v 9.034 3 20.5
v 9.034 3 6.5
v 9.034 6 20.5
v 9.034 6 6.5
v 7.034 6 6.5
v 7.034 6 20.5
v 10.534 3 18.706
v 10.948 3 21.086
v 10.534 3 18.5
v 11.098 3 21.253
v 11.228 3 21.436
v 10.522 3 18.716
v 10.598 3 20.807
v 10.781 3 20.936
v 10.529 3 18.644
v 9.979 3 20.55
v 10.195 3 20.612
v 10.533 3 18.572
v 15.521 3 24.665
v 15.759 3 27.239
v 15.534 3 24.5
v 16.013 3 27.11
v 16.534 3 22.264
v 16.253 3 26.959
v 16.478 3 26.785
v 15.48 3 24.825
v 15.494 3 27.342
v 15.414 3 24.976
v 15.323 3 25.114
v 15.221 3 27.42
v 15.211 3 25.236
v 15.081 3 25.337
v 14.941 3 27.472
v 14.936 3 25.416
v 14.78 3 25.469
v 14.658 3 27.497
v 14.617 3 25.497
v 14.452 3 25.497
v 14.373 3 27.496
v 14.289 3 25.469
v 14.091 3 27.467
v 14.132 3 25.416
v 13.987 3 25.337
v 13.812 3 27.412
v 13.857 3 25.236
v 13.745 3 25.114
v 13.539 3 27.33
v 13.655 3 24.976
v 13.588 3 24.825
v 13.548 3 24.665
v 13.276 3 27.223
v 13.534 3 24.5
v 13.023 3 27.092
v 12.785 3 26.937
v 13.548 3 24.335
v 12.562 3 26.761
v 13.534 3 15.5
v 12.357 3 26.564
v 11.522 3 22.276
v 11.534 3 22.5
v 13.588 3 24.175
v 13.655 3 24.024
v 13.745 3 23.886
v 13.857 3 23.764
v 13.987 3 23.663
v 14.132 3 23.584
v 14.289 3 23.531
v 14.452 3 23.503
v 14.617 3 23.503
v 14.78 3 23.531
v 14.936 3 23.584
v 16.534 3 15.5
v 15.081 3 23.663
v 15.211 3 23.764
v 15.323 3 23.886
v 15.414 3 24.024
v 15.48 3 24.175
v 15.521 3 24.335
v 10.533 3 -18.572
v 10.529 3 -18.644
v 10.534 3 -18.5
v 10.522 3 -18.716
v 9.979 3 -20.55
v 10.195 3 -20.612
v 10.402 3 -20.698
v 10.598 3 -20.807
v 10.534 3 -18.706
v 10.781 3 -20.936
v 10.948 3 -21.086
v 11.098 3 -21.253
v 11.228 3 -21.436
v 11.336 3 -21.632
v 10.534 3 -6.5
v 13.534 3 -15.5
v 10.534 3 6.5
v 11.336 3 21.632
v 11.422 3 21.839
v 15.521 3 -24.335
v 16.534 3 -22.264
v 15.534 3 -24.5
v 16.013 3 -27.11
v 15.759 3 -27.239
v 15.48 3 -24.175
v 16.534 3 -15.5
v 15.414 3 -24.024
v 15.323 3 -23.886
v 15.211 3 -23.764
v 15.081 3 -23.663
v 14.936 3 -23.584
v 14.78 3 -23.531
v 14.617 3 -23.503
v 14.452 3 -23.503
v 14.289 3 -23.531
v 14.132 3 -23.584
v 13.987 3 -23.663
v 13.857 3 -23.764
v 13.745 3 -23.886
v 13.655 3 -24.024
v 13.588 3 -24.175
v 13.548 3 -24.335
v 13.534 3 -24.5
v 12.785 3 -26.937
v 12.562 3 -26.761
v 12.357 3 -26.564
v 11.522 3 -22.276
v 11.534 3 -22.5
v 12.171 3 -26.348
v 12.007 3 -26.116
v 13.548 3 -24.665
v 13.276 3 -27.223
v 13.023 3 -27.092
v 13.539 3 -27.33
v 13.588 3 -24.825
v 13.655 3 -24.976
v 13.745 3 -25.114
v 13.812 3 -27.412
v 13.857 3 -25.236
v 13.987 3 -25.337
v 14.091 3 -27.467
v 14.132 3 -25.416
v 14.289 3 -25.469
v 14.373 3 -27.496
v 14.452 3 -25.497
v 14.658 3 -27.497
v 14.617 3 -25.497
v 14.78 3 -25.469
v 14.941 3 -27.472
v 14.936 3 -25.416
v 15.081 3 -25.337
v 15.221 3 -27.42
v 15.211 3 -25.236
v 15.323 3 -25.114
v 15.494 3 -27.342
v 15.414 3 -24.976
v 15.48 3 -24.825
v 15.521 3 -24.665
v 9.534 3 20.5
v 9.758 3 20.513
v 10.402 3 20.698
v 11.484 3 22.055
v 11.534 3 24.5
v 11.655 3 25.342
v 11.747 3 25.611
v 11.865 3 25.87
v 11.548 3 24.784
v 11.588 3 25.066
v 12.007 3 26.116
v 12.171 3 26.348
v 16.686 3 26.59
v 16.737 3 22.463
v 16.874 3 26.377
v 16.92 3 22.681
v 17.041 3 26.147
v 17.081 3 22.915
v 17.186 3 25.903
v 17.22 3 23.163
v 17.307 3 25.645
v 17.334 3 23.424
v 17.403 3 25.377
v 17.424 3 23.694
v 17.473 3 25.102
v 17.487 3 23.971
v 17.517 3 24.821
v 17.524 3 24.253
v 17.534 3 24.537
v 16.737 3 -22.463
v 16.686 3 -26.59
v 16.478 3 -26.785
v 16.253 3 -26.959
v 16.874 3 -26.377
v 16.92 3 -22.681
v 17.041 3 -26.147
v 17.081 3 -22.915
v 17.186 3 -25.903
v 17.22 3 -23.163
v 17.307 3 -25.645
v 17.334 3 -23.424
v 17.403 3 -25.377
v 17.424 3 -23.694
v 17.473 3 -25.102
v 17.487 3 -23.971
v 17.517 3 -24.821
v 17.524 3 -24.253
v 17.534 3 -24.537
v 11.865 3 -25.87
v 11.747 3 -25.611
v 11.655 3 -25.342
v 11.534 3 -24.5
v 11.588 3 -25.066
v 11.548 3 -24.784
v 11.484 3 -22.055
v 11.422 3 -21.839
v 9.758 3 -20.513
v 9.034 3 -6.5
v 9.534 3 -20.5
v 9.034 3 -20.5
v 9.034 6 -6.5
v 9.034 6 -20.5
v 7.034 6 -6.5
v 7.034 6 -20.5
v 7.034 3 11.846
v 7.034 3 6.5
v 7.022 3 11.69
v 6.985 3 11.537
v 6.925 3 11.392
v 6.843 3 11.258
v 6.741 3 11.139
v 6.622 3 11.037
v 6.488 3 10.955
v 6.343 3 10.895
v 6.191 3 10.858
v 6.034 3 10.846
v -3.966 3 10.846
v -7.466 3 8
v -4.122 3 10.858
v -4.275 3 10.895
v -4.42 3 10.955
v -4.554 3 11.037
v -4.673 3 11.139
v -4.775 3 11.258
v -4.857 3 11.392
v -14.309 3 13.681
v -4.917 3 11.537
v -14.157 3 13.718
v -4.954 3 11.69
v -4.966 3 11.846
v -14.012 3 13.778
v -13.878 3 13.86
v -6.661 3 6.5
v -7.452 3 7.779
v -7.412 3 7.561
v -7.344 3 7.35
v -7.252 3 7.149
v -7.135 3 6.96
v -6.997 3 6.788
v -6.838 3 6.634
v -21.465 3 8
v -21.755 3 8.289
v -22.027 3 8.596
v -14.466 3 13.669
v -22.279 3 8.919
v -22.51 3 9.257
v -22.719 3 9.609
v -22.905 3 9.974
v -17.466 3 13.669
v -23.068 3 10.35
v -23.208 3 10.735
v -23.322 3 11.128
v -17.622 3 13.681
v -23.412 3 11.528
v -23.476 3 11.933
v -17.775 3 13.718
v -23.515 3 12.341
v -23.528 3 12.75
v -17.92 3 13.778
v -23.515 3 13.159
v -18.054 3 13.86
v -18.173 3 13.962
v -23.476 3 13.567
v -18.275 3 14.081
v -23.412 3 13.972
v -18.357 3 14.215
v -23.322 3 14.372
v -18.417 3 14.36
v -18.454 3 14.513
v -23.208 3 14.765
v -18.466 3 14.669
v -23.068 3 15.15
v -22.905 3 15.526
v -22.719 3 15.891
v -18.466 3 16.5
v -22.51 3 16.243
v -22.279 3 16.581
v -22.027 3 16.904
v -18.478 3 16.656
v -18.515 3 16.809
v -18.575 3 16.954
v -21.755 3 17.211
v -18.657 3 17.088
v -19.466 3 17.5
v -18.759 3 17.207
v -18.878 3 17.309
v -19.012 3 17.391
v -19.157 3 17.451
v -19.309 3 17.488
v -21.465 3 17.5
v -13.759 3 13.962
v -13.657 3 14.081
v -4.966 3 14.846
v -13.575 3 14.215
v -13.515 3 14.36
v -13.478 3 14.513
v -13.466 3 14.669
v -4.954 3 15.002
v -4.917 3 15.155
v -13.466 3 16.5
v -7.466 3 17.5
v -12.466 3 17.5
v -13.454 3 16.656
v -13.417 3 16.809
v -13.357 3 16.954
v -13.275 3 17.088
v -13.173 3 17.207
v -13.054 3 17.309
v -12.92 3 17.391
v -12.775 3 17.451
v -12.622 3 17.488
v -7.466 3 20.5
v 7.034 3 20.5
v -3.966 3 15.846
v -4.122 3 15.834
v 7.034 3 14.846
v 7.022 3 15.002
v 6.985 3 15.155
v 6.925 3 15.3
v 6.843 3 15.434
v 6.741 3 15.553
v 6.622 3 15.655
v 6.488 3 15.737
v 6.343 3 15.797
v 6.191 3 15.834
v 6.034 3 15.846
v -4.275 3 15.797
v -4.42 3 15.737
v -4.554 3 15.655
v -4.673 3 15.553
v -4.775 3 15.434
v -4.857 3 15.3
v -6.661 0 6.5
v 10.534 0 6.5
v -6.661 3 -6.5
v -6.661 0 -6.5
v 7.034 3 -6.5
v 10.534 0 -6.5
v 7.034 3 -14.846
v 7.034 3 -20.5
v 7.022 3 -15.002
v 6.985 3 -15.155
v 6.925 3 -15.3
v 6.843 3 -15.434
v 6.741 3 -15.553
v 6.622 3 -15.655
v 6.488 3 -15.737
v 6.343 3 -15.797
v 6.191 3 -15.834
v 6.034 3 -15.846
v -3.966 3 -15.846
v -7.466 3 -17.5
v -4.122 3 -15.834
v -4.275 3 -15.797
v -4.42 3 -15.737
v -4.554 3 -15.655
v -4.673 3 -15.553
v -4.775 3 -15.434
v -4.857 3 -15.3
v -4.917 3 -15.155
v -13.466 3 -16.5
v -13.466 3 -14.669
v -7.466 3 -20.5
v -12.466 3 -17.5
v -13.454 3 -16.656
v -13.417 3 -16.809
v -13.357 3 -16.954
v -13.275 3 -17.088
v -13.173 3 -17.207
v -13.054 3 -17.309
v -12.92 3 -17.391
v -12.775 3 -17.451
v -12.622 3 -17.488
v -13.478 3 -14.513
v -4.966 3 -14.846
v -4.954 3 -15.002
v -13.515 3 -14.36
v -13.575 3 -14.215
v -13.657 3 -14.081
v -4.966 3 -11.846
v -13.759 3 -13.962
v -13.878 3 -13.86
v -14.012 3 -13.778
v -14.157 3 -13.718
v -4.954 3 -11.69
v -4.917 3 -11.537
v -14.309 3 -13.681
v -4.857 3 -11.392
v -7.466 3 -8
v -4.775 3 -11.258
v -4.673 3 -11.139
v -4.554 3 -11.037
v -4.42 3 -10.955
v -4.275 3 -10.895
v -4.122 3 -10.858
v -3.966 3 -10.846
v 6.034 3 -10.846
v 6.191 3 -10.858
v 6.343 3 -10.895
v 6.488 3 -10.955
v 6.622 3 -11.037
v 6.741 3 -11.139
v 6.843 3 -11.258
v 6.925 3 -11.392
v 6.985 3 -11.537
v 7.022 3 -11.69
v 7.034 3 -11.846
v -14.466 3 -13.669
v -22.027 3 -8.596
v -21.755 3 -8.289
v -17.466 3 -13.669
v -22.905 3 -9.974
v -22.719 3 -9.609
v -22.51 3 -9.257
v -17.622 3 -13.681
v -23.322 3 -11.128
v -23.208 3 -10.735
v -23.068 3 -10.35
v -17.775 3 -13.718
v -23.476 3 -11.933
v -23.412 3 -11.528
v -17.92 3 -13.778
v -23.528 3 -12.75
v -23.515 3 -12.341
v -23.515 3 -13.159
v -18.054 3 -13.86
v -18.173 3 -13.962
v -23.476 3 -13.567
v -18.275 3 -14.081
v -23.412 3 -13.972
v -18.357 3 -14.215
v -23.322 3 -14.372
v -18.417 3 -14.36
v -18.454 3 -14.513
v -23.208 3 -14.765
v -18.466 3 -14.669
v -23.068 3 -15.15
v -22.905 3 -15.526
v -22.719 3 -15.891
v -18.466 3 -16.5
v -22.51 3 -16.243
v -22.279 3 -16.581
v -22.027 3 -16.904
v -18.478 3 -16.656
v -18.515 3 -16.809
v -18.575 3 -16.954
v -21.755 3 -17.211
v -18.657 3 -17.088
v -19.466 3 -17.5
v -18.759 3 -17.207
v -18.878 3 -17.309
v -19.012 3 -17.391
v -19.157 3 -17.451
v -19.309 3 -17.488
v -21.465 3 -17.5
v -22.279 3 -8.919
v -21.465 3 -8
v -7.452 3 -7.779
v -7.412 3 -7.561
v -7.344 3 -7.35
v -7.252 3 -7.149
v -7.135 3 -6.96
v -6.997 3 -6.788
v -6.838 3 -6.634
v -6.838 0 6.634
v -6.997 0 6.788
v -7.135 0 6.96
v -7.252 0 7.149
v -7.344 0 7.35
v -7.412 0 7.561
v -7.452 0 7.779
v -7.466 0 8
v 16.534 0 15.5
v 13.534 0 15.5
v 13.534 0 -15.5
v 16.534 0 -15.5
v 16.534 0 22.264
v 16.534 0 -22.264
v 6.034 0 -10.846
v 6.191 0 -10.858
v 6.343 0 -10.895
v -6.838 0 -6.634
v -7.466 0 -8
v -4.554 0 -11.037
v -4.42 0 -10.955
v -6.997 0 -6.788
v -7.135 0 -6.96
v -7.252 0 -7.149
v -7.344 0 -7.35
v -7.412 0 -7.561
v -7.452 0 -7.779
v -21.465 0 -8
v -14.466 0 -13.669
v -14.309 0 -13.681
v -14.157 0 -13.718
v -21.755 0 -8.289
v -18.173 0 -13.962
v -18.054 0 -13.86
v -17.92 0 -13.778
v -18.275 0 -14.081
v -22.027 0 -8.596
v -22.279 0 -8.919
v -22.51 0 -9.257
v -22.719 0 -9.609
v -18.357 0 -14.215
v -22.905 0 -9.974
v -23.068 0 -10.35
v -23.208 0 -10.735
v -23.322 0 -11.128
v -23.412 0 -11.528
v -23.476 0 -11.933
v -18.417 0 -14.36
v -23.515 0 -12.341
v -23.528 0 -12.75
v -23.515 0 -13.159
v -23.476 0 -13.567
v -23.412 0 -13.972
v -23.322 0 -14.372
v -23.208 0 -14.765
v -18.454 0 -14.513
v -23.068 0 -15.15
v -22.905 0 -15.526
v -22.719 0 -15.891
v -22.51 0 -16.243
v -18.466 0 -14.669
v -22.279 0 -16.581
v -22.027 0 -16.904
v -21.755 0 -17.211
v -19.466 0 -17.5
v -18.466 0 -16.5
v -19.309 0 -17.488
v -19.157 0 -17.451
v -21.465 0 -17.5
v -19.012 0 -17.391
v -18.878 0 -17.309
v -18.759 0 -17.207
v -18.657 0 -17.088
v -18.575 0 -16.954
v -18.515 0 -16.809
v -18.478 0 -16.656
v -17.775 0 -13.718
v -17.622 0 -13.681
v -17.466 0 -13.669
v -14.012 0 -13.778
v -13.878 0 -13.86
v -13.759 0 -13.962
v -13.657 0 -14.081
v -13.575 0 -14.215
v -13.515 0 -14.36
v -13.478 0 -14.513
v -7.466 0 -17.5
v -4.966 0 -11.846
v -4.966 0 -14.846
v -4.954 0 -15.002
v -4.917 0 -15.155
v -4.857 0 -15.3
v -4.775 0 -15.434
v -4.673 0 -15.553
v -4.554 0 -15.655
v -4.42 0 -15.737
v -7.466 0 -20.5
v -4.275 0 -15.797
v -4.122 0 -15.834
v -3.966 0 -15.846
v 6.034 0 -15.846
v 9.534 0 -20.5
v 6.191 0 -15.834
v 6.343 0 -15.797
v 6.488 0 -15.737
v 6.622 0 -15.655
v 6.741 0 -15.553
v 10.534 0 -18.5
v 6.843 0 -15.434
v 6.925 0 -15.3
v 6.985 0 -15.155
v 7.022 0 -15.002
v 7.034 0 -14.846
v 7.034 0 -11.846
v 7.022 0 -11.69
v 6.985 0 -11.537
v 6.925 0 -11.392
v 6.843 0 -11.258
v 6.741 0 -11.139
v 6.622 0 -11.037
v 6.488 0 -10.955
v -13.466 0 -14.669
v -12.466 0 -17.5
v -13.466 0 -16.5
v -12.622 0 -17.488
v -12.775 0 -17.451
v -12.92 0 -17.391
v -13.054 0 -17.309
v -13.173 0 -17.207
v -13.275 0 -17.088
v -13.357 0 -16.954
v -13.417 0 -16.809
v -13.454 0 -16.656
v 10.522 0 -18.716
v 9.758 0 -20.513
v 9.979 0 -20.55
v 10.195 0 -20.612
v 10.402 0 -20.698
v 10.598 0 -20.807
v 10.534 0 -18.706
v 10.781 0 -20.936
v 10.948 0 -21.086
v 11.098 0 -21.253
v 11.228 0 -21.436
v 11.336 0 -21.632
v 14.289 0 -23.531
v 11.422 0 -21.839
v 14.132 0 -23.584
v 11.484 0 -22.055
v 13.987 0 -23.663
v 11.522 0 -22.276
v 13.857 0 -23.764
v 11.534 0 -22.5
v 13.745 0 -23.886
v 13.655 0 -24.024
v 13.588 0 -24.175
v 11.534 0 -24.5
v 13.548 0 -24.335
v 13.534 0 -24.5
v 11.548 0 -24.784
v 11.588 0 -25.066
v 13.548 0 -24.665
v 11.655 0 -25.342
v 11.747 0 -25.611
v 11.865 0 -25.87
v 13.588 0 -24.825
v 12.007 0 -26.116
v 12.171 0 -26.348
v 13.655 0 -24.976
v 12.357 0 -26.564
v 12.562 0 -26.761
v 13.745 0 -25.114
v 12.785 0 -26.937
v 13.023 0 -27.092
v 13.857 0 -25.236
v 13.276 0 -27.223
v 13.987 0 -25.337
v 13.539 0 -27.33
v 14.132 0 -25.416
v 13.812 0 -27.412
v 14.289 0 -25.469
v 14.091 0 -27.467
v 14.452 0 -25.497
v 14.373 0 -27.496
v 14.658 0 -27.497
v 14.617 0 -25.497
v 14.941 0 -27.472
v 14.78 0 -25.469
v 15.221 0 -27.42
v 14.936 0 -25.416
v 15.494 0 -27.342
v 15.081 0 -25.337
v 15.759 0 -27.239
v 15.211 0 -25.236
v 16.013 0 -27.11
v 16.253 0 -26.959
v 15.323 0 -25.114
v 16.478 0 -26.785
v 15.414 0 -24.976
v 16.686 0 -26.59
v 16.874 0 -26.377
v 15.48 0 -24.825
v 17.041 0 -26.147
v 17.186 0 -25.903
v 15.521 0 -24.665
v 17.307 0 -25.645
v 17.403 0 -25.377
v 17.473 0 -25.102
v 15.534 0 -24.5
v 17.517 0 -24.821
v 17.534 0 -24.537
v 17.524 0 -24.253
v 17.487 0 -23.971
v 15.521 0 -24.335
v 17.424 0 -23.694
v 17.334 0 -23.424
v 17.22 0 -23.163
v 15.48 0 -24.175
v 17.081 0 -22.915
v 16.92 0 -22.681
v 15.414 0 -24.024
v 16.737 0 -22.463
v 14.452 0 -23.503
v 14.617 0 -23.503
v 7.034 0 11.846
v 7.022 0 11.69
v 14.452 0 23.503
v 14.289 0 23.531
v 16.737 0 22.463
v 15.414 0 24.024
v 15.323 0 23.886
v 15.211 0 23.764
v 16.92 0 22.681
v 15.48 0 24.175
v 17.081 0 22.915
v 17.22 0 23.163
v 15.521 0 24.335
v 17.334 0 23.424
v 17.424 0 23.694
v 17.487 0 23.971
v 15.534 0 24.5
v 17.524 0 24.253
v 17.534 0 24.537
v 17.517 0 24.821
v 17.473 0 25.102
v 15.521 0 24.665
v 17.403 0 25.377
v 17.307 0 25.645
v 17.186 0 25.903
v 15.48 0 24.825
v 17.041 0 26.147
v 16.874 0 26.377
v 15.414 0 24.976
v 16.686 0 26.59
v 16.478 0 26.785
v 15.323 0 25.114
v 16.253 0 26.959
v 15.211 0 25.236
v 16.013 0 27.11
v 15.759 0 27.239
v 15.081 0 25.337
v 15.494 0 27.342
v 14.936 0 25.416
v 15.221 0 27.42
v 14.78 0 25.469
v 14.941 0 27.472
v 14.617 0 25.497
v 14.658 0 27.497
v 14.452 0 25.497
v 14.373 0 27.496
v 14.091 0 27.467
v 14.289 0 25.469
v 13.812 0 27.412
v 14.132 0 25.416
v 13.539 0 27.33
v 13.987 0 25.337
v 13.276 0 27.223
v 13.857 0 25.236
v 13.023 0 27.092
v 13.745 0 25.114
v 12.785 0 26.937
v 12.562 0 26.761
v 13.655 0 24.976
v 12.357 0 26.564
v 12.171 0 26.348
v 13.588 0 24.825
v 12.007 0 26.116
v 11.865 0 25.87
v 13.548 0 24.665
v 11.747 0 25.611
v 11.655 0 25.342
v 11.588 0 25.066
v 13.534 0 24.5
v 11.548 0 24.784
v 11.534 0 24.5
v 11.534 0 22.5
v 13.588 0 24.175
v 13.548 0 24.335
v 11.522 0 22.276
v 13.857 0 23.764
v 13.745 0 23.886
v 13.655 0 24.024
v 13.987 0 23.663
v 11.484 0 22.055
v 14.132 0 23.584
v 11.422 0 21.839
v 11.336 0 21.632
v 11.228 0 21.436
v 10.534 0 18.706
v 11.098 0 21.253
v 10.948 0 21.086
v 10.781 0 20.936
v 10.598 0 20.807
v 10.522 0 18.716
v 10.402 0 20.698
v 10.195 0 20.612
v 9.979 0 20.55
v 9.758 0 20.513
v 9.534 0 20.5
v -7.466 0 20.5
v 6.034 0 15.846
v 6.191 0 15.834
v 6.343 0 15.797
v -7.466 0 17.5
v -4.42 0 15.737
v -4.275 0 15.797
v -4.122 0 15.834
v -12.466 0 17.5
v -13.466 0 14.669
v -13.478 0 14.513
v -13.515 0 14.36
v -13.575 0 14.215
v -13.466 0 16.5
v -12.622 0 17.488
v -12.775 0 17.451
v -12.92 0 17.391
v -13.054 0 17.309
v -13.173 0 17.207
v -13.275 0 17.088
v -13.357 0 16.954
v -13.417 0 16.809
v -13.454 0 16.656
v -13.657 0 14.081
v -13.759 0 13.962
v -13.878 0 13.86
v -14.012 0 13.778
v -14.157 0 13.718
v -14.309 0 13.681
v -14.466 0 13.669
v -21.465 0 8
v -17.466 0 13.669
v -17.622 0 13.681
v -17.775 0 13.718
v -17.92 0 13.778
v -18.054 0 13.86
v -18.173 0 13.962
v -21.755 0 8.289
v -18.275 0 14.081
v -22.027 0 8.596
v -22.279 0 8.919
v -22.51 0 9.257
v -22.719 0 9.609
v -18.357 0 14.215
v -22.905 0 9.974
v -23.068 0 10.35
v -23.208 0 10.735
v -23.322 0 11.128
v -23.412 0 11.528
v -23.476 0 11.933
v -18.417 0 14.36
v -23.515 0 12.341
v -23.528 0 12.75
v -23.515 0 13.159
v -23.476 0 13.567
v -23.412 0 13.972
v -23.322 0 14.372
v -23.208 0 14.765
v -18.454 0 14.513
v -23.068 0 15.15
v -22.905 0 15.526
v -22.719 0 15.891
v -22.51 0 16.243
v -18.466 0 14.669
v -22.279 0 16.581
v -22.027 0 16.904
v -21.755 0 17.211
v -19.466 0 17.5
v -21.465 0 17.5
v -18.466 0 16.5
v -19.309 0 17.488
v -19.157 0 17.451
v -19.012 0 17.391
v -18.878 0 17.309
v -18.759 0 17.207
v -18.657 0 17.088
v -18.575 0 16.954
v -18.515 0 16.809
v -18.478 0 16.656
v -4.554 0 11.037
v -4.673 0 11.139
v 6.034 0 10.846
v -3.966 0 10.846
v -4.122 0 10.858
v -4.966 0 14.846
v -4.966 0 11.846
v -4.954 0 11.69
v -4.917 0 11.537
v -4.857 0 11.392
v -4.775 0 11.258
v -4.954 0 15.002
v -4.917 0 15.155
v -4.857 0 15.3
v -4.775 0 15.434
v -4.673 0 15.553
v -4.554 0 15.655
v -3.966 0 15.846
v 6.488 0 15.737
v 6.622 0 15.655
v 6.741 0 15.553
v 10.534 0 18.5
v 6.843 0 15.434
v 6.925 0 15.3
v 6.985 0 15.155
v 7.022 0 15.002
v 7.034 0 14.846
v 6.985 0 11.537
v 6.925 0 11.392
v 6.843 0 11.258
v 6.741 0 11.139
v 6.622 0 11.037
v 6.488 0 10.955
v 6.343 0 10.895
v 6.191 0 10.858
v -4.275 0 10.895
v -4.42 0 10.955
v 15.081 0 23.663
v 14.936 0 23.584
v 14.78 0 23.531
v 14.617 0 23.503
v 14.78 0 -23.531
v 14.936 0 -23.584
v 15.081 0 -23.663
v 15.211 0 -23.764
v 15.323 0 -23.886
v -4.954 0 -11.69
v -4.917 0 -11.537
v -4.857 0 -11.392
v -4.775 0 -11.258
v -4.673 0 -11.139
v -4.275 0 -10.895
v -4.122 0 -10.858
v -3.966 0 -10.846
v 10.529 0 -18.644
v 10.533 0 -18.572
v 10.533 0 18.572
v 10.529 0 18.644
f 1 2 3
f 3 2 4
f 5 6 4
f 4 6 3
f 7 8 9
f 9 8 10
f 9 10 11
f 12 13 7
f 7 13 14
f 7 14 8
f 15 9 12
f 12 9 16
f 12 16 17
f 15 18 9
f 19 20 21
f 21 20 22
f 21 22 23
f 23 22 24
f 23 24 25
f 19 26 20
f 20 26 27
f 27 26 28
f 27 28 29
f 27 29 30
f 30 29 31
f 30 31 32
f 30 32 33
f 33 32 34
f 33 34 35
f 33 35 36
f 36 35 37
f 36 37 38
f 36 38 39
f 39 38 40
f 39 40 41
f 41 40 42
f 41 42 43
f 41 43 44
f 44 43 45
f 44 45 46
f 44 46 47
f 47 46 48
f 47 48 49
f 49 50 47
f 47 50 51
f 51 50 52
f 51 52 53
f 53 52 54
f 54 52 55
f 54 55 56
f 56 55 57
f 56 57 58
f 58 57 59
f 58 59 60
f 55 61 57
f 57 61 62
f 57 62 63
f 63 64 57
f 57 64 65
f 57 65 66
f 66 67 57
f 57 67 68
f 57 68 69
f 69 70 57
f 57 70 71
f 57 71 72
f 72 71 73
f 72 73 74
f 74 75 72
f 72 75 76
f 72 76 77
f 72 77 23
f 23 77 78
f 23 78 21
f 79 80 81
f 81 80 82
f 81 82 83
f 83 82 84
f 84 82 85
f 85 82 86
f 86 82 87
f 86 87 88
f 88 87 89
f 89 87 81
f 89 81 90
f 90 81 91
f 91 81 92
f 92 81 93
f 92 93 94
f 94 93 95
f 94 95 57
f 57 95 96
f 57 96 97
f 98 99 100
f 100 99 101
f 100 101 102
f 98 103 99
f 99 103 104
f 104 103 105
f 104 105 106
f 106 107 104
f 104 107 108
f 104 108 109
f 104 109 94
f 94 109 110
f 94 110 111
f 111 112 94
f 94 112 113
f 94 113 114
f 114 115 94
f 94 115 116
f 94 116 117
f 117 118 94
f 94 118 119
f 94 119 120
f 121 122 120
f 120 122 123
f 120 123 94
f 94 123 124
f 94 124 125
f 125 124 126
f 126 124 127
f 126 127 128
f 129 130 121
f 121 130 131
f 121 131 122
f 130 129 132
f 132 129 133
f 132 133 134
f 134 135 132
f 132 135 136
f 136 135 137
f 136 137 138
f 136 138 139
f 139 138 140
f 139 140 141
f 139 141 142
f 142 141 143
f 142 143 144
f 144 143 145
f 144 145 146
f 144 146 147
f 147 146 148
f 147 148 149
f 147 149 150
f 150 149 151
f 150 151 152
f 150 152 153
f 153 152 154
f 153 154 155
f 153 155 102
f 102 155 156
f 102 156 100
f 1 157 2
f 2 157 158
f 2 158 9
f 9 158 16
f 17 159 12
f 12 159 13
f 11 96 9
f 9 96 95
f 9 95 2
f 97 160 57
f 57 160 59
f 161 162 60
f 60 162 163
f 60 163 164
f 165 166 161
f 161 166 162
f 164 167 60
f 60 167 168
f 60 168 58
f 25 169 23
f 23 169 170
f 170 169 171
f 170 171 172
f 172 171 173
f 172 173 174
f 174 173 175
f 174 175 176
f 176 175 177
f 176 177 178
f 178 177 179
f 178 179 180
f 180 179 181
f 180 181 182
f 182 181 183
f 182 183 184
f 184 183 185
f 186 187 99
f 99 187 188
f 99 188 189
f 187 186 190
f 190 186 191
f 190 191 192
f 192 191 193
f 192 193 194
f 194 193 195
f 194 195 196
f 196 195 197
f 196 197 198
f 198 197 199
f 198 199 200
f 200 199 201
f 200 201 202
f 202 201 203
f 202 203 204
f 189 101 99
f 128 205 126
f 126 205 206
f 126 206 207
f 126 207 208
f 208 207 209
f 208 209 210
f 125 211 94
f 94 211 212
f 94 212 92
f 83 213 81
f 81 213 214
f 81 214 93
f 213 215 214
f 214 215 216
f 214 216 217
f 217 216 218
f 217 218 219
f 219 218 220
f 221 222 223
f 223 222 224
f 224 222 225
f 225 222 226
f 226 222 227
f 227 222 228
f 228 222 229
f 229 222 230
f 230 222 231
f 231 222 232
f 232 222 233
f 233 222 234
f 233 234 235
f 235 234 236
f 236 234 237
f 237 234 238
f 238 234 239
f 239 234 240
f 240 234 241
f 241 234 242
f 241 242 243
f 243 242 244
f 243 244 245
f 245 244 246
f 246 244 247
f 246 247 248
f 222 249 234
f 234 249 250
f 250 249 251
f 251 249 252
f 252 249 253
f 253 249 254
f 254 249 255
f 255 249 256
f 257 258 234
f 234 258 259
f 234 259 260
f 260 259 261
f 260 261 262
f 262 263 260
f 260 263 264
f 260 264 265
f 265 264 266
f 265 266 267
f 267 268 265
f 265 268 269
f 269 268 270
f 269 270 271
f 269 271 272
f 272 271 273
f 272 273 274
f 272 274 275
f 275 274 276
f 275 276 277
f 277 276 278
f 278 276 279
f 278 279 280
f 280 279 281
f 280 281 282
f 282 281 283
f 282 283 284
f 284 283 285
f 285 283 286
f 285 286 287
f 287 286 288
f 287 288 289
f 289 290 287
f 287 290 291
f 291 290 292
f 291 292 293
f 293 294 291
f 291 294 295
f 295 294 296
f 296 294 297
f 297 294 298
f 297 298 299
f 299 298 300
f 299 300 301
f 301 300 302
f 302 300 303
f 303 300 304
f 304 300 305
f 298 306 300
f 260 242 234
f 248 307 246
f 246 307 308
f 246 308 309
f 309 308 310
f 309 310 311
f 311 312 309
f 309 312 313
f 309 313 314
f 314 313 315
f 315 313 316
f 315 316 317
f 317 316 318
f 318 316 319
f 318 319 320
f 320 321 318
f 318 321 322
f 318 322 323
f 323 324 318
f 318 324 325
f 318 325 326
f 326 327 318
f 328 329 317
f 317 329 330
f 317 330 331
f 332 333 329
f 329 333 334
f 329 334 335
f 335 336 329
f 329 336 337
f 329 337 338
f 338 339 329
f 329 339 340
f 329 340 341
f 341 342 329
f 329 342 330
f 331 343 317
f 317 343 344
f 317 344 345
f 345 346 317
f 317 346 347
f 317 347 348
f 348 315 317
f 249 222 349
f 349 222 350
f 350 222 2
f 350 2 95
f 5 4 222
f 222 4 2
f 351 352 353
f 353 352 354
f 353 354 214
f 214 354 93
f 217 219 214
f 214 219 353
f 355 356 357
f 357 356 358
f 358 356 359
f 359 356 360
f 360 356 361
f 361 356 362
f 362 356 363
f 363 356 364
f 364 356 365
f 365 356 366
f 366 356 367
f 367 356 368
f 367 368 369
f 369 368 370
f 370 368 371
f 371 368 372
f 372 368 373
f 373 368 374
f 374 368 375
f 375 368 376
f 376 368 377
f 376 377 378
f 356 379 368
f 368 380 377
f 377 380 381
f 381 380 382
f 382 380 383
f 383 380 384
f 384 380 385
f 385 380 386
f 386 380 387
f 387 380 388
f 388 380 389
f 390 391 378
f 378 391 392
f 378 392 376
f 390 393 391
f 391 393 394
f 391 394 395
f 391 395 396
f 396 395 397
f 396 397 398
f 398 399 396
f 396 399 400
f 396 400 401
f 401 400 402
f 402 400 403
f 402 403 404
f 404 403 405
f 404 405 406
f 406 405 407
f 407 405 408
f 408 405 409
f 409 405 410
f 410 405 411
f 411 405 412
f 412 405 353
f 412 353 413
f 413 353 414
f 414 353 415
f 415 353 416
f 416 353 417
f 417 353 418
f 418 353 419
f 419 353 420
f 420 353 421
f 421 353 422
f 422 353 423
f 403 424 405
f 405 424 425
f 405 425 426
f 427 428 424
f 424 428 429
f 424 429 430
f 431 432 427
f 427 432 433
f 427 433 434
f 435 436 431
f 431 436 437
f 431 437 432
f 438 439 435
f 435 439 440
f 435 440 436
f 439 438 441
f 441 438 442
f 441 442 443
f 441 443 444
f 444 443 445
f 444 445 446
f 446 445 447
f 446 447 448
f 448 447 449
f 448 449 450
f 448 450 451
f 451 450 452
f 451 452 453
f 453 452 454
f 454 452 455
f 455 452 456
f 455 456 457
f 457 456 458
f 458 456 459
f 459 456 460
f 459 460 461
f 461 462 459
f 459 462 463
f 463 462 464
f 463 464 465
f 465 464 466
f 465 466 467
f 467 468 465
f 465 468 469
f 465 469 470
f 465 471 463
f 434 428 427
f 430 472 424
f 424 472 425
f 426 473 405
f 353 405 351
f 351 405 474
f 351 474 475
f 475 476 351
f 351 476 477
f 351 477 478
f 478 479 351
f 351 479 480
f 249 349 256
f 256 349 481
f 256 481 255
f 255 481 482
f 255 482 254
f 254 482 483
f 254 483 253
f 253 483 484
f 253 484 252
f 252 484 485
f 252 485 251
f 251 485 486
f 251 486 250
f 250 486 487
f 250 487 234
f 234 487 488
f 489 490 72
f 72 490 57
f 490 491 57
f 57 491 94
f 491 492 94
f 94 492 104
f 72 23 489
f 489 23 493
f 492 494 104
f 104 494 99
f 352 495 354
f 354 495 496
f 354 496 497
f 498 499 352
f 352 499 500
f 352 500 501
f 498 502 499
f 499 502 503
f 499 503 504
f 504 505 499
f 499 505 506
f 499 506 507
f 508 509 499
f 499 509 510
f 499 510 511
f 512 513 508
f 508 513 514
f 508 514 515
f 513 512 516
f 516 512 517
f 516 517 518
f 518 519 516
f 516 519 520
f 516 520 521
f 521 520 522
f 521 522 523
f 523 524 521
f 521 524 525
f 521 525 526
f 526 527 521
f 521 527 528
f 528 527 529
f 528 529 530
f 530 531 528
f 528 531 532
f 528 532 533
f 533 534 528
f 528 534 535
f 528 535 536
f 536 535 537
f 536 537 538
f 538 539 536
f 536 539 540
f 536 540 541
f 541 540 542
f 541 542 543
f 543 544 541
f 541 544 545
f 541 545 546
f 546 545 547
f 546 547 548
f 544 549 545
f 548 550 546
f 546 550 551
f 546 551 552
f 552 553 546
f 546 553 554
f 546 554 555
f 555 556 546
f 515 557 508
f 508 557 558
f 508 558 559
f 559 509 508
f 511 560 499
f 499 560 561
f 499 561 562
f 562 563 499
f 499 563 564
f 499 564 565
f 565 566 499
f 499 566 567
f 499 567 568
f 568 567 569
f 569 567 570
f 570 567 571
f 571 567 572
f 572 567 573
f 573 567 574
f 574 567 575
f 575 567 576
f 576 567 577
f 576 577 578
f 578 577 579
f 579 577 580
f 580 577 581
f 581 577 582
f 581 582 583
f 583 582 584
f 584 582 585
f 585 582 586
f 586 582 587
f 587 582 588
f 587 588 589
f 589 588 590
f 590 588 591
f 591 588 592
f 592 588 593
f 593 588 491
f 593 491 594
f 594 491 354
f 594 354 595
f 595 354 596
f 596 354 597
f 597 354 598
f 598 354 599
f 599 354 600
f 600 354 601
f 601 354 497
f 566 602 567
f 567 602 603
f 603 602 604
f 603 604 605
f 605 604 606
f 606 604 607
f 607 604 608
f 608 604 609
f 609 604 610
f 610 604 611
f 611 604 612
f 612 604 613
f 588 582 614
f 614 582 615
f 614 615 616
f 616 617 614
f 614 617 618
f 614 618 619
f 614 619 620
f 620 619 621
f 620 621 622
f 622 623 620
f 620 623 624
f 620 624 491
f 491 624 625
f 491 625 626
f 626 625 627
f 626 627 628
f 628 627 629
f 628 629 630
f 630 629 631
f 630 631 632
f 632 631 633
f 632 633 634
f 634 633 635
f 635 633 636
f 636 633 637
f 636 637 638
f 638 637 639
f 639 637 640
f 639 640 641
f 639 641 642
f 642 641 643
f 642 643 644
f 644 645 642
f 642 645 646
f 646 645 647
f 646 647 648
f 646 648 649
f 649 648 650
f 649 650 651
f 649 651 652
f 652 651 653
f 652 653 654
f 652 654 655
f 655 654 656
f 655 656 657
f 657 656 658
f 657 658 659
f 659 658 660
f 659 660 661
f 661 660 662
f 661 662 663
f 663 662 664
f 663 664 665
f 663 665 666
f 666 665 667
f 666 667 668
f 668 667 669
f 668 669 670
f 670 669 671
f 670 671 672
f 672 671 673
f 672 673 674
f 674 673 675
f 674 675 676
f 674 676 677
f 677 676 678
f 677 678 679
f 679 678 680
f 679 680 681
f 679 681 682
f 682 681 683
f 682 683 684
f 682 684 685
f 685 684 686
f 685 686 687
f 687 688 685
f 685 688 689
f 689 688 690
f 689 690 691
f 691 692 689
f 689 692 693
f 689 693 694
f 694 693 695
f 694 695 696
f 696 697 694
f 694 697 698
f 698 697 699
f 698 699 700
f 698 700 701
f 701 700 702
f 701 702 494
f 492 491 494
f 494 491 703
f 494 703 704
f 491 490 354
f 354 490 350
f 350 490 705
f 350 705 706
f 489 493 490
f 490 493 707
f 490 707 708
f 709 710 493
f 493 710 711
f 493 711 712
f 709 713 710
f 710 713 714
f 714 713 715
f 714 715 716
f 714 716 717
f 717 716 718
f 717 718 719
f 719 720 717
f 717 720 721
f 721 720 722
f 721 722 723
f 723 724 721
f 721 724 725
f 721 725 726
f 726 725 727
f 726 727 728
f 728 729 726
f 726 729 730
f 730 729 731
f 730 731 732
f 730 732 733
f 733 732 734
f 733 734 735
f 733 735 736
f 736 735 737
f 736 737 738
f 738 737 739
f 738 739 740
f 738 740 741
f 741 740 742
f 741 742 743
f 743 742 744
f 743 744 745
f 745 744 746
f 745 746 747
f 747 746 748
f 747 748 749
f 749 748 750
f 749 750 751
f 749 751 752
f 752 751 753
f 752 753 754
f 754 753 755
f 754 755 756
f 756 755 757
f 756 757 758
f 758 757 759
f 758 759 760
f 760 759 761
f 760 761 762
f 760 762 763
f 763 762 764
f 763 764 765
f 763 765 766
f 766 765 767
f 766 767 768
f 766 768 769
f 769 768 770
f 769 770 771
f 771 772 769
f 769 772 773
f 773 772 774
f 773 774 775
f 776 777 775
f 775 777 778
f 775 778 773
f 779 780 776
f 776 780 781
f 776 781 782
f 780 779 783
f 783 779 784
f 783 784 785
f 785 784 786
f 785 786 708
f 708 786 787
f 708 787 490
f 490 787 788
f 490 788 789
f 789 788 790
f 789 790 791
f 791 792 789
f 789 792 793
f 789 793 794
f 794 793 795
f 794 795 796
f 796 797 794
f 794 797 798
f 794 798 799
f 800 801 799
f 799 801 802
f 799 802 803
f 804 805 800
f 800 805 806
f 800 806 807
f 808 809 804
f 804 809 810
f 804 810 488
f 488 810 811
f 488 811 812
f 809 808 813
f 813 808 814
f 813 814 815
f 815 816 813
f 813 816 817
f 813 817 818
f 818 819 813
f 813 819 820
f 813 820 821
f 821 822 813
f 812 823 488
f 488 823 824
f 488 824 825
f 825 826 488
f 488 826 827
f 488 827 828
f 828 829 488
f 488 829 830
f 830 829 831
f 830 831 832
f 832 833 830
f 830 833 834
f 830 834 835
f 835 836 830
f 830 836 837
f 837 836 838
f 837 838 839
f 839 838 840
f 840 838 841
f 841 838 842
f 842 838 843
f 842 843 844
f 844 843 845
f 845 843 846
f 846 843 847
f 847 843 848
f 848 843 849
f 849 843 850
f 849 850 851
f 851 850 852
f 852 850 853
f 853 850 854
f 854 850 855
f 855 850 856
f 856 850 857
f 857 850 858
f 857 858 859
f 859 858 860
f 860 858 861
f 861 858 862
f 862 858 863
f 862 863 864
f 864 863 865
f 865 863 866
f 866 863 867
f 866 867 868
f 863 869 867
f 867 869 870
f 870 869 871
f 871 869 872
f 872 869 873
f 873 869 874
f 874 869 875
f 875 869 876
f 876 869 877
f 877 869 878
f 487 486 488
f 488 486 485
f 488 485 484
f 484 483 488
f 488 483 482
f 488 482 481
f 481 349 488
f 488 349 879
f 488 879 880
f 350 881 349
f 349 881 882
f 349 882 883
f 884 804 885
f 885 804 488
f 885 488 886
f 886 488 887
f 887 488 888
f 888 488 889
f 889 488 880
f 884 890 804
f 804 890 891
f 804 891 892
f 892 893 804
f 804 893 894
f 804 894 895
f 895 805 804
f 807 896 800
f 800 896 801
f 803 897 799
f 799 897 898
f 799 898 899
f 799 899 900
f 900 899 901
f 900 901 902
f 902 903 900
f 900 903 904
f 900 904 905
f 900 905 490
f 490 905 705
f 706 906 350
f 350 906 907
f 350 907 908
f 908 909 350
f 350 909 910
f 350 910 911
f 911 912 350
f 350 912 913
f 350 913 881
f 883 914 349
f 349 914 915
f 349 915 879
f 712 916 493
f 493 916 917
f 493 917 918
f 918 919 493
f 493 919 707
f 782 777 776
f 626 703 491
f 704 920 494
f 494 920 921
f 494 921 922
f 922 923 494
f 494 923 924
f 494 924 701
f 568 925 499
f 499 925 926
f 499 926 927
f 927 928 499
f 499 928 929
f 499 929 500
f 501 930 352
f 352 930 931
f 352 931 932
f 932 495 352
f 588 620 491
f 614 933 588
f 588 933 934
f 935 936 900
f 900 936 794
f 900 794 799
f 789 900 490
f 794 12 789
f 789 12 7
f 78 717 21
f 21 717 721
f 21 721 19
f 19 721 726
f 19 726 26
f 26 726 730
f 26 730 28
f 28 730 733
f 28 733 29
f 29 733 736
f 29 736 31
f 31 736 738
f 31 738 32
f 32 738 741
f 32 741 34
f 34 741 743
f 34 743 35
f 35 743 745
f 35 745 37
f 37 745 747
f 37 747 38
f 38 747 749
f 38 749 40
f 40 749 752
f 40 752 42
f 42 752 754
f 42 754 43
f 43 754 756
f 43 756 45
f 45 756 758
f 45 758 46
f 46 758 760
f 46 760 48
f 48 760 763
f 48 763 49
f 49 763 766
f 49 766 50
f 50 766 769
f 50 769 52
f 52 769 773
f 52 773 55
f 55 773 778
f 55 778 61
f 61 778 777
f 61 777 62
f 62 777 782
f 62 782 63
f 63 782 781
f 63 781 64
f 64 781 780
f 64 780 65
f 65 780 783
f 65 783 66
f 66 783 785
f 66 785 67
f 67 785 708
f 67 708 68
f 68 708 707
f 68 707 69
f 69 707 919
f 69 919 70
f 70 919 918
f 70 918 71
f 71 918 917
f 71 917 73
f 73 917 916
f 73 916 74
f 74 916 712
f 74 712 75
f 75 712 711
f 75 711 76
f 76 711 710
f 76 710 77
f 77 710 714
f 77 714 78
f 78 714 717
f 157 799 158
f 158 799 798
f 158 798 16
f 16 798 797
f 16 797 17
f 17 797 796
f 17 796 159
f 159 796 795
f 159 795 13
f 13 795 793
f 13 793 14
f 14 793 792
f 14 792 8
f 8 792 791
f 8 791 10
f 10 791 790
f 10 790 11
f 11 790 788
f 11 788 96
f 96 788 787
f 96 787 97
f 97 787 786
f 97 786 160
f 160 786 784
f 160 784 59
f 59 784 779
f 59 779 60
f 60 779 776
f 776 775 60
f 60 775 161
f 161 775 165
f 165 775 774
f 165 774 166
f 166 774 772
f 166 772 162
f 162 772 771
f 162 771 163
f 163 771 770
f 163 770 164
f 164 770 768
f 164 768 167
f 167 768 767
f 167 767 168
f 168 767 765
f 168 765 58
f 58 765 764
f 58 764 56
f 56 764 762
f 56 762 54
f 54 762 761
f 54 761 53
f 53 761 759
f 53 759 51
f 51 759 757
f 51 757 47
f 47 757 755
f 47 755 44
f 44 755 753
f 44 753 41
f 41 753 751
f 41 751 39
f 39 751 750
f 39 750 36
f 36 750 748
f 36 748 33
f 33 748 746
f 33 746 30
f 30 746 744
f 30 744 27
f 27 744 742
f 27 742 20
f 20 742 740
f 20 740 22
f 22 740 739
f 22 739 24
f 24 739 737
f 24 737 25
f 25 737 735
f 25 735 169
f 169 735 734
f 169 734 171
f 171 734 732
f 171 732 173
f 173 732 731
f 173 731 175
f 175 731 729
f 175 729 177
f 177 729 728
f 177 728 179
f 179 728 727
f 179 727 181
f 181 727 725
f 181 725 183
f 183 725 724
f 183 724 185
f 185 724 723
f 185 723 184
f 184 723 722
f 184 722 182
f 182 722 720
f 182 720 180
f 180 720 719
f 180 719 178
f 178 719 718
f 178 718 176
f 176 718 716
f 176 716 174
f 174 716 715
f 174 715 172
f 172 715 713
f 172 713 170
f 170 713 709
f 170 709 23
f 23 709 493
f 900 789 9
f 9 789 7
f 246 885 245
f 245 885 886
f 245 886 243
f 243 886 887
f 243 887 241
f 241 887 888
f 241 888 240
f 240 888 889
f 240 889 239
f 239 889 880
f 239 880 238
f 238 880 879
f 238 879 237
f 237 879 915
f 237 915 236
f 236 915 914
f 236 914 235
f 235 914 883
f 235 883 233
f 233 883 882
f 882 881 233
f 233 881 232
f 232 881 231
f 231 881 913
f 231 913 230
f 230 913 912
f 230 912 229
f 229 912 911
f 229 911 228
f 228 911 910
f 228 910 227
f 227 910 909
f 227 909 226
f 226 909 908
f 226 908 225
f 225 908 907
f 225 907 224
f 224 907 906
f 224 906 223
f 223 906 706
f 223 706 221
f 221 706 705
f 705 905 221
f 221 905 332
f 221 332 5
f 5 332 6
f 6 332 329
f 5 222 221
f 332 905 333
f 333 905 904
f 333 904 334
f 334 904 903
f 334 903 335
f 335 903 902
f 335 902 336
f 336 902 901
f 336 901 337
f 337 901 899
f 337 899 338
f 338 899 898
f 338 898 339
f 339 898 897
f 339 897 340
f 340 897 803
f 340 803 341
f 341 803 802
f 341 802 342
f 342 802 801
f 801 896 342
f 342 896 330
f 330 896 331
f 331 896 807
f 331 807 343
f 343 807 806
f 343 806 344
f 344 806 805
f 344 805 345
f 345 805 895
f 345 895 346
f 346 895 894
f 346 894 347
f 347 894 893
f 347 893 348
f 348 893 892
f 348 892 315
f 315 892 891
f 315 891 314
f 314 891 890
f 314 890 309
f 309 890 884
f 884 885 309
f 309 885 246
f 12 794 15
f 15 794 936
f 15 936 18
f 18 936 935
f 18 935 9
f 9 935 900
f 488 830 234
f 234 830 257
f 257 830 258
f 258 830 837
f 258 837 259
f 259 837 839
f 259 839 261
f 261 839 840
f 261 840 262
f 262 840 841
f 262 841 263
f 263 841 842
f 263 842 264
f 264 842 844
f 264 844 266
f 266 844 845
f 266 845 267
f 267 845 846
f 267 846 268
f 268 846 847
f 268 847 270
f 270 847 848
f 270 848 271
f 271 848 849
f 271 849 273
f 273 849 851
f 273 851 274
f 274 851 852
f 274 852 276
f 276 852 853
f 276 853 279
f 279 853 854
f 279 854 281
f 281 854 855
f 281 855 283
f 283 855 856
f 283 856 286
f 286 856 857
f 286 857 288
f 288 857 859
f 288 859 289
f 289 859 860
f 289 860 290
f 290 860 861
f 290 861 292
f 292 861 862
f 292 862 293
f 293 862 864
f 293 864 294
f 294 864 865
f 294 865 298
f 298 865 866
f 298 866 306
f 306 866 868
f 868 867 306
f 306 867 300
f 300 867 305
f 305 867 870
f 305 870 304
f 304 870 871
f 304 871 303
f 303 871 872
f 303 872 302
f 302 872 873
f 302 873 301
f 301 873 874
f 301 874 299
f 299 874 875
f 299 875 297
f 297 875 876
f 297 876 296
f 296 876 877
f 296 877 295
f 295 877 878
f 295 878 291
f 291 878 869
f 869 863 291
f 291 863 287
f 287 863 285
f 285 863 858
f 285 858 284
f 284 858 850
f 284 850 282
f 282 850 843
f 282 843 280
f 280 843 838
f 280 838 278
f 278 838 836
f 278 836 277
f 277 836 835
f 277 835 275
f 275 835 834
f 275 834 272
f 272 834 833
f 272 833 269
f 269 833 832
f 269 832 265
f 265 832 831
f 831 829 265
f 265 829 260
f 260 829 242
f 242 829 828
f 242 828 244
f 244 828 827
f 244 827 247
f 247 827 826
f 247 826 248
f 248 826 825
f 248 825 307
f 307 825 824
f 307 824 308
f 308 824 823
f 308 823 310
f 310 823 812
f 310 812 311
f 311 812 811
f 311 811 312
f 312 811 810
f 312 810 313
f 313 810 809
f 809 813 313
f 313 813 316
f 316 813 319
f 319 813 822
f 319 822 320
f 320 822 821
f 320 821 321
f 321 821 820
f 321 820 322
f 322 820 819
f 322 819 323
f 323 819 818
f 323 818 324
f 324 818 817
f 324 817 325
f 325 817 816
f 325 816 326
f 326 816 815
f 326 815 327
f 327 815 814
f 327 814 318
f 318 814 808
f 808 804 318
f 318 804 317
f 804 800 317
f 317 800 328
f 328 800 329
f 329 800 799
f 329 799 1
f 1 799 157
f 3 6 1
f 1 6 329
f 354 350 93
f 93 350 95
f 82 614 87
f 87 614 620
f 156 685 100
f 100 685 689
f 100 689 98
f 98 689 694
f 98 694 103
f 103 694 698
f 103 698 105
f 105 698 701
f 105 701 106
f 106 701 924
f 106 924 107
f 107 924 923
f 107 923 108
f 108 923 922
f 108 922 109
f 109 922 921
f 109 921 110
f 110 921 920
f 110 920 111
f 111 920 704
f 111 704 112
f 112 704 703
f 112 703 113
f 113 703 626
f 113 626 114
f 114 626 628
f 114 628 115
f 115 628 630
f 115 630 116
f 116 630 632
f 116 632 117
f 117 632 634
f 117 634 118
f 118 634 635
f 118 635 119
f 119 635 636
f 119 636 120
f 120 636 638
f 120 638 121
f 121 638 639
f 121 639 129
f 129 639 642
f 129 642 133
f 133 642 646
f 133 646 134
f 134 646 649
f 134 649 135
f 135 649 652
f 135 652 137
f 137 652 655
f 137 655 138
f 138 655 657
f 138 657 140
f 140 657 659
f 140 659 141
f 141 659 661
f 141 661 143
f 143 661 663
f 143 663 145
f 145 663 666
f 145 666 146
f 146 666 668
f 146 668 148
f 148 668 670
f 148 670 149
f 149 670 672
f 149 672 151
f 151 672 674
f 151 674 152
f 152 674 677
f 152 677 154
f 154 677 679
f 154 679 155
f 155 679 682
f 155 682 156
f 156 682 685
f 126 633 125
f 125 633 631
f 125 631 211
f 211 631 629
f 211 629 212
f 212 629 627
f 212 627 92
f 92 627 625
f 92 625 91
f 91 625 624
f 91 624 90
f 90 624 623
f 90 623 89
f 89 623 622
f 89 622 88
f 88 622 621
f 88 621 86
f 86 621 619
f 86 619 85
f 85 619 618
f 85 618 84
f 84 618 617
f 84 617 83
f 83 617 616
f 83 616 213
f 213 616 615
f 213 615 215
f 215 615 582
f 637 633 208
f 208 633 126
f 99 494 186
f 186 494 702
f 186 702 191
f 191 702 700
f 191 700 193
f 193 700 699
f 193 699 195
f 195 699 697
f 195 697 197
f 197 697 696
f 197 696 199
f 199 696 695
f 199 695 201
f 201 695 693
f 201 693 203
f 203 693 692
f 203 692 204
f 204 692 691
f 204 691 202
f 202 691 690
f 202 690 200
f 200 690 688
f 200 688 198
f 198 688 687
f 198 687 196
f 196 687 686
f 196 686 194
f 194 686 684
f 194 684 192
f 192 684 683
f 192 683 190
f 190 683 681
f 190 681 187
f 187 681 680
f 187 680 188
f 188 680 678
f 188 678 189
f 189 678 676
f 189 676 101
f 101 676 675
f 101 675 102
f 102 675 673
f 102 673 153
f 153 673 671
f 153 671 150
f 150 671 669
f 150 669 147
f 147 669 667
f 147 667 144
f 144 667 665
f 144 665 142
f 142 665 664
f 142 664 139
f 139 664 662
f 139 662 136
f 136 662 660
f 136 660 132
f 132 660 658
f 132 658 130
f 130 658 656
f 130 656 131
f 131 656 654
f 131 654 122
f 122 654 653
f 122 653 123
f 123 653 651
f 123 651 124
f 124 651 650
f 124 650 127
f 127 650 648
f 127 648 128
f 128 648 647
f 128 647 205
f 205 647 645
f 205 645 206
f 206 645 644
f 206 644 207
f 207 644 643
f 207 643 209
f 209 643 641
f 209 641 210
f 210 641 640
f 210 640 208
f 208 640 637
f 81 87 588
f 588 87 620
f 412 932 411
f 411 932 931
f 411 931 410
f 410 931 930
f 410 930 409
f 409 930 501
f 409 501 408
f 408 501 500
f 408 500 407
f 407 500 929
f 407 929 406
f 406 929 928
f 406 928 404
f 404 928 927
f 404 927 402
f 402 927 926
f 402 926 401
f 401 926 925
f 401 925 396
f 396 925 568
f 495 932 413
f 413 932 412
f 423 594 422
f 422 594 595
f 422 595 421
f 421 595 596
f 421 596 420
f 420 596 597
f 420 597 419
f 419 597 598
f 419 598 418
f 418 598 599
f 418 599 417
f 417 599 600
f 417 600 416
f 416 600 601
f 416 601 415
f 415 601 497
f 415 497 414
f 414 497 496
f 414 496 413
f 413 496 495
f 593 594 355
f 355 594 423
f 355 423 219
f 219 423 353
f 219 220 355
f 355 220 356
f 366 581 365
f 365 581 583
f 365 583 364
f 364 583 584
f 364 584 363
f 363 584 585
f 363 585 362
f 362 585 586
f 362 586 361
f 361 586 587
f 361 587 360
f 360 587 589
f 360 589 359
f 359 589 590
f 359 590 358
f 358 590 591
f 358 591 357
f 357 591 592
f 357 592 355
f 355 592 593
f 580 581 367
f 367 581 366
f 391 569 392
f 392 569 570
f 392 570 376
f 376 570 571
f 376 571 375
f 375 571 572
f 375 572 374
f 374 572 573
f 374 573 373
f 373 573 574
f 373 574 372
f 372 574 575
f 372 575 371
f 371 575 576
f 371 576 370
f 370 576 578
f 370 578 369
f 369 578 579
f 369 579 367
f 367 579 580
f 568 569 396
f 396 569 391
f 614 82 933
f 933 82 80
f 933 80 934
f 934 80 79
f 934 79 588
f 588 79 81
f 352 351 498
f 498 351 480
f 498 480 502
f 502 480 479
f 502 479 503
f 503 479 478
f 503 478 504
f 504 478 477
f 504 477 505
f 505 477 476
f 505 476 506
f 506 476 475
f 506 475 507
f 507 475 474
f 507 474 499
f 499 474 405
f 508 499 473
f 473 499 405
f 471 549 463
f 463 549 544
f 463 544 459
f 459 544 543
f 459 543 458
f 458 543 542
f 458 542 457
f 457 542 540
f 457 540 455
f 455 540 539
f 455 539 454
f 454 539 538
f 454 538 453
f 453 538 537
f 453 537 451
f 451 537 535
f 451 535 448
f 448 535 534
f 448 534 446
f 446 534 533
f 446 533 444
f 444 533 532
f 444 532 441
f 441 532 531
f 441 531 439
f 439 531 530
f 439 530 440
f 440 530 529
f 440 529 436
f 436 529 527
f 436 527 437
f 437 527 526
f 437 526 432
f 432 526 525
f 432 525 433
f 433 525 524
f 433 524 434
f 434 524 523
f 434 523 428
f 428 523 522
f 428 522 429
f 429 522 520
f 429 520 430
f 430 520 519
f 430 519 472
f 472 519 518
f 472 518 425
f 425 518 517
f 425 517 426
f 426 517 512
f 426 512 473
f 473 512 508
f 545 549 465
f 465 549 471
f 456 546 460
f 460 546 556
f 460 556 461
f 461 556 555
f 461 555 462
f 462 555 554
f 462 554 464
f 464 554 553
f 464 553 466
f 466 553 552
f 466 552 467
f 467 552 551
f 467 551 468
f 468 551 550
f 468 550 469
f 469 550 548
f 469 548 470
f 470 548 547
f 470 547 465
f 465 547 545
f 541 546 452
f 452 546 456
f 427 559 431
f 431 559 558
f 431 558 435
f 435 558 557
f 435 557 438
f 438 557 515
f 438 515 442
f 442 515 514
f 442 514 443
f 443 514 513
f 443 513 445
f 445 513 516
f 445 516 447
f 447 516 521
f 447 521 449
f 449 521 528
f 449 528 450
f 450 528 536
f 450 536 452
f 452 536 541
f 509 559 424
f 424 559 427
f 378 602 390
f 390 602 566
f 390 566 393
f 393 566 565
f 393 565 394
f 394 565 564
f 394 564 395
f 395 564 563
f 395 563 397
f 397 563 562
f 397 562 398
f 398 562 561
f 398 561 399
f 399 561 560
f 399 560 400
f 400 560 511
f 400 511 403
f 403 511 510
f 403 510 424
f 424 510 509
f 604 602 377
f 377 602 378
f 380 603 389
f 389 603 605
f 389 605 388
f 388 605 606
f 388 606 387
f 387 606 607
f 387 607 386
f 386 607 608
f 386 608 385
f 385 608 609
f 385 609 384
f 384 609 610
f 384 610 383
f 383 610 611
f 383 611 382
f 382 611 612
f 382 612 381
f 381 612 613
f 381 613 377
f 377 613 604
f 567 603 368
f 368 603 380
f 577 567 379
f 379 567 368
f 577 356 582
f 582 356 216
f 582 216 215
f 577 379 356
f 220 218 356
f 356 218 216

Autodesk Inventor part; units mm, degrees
ref_plane "YZ Plane" through (0, 0, 0) normal (1, 0, 0) x (0, 1, 0)
ref_plane "XZ Plane" through (0, 0, 0) normal (0, 1, 0) x (-1, 0, 0)
ref_plane "XY Plane" through (0, 0, 0) normal (0, 0, 1) x (1, 0, 0)
sketch "Sketch1" plane through (0, 0, 0) normal (0, 1, 0) x (-1, 0, 0)
  line L0 (17.0278, 0) -> (-10.5342, 0)
  line L1 (-10.5342, 0) -> (-10.5342, -20.5)
  line L2 (-10.5342, -20.5) -> (17.0278, -20.5)
  line L3 (17.0278, -20.5) -> (17.0278, 0)
  line L4 (4.9658, -15.846) -> (-7.0342, -15.846)
  line L5 (-7.0342, -15.846) -> (-7.0342, -10.846)
  line L6 (-7.0342, -10.846) -> (4.9658, -10.846)
  line L7 (4.9658, -10.846) -> (4.9658, -15.846)
  circle A0 centre (-6.0342, -14.846) radius 1
  circle A1 centre (3.9658, -14.846) radius 1
  circle A2 centre (3.9658, -11.846) radius 1
  circle A3 centre (-6.0342, -11.846) radius 1
  circle A4 centre (-8.5342, -18.5) radius 2
  line L8 (17.0278, -20.5) -> (-8.5342, -20.5)
  line L9 (-8.5342, -20.5) -> (-8.5342, -6.2)
  line L10 (-8.5342, -6.2) -> (17.0278, -6.2)
  line L11 (17.0278, -6.2) -> (17.0278, -20.5)
  line L12 (-10.5342, -20.5) -> (7.4658, -20.5)
  line L13 (7.4658, -20.5) -> (7.4658, -17.5)
  line L14 (7.4658, -17.5) -> (-10.5342, -17.5)
  line L15 (-10.5342, -17.5) -> (-10.5342, -20.5)
  line L16 (7.4658, -17.5) -> (17.0278, -17.5)
  line L17 (17.0278, -17.5) -> (17.0278, -8)
  line L18 (17.0278, -8) -> (7.4658, -8)
  line L19 (7.4658, -8) -> (7.4658, -17.5)
  circle A5 centre (17.0278, -12.75) radius 6.5
  line L20 (17.0278, -17.5) -> (21.4649, -17.5)
  line L21 (21.4649, -17.5) -> (21.4649, -8)
  line L22 (21.4649, -8) -> (17.0278, -8)
  line L23 (17.0278, -8) -> (17.0278, -17.5)
  circle A6 centre (5.6658, -8) radius 1.8
  line L24 (18.4658, -17.5) -> (13.4658, -17.5)
  line L25 (13.4658, -17.5) -> (13.4658, -13.6692)
  line L26 (13.4658, -13.6692) -> (18.4658, -13.6692)
  line L27 (18.4658, -13.6692) -> (18.4658, -17.5)
  circle A7 centre (19.4658, -16.5) radius 1
  circle A8 centre (17.4658, -14.6692) radius 1
  circle A9 centre (14.4658, -14.6692) radius 1
  circle A10 centre (12.4658, -16.5) radius 1
  line L28 (-8.5342, -17.5) -> (-10.5342, -17.5)
  line L29 (-10.5342, -17.5) -> (-10.5342, -6.2)
  line L30 (-10.5342, -6.2) -> (-8.5342, -6.2)
  line L31 (-8.5342, -6.2) -> (-8.5342, -17.5)
  point P0 (0, 0)
  point P1 (4.9658, -11.846)
  point P2 (4.9658, -14.846)
  point P3 (3.9658, -15.846)
  point P4 (-6.0342, -15.846)
  point P5 (-7.0342, -14.846)
  point P6 (-7.0342, -11.846)
  point P7 (-6.0342, -10.846)
  point P8 (3.9658, -10.846)
  point P9 (-8.5342, -16.5)
  point P10 (-8.5342, -20.5)
  point P11 (12.4658, -17.5)
  point P12 (13.4658, -16.5)
  point P13 (13.4658, -14.6692)
  point P14 (14.4658, -13.6692)
  point P15 (17.4658, -13.6692)
  point P16 (18.4658, -14.6692)
  point P17 (18.4658, -16.5)
  point P18 (19.4658, -17.5)
  point P19 (5.6658, -6.2)
  point P20 (-10.5342, -18.5)
  dimension "d26" = 13
  dimension "d1" = 20.5
  dimension "d2" = 0
  dimension "d3" = 12
  dimension "d4" = 5
  dimension "d5" = 4.654
  dimension "d6" = 3.5
  dimension "d7" = 2
  dimension "d8" = 2
  dimension "d9" = 2
  dimension "d10" = 2
  dimension "d11" = 1
  dimension "d12" = 1
  dimension "d13" = 1
  dimension "d14" = 1
  dimension "d15" = 1
  dimension "d16" = 1
  dimension "d17" = 1
  dimension "d18" = 1
  dimension "d19" = 4
  dimension "d20" = 2
  dimension "d21" = 14.3
  dimension "d22" = 18
  dimension "d23" = 3
  dimension "d24" = 9.5
  dimension "d25" = 9.562
  dimension "d27" = 1.8
  dimension "d28" = 5
  dimension "d29" = 8.5
  dimension "d30" = 2
  dimension "d31" = 2
  dimension "d32" = 2
  dimension "d33" = 2
  dimension "d34" = 1
  dimension "d35" = 1
  dimension "d36" = 1
  dimension "d37" = 1
  dimension "d38" = 1
  dimension "d39" = 1
  dimension "d40" = 1
  dimension "d41" = 1
extrude "Extrusion1" add sketch "Sketch1" along normal blind 3 contours L30 L9 A4 L14 L1 | A6 L19 L14 A4 L9 L10 | A6 | L14 A4 L1 | L22 L21 L20 A7 L27 L26 L3 | L3 L26 L25 A10 A5 L18 | A5 L21 | A5 A10 L16 L19 L18 | A4 L14 L9 | A4 L9 L14 | A4 L14 L9 | A10 A5 | A5 A10 | L13 L2 A4 L14 | L9 L14 A4 | A9 L25 L26 | L26 L27 A8 | A7 | L4 A1 L7 | L4 L5 A0 | A2 L6 L7 | L5 L6 A3
mirror "Mirror1" about plane through (0, 0, 0) normal (0, 0, 1) of "Extrusion1"
sketch "Sketch2" plane through (0, 0, 0) normal (0, -1, 0) x (1, 0, 0)
  circle A0 centre (14.5342, -24.5) radius 1
  line L0 (8.5342, -20.5) -> (-7.4658, -20.5) projected
  line L1 (10.5342, -6.2) -> (10.5342, -18.5) projected
  line L2 (10.5342, -6.2) -> (16.5342, -6.2)
  line L3 (16.5342, -6.2) -> (16.5342, -28.6617)
  line L4 (16.5342, -28.6617) -> (10.5342, -28.6617)
  line L5 (10.5342, -28.6617) -> (10.5342, -6.2)
  circle A1 centre (14.5342, -24.5) radius 3
  line L6 (8.5342, -20.5) -> (11.5342, -20.5)
  line L7 (11.5342, -20.5) -> (11.5342, -24.5)
  circle A2 centre (9.5342, -22.5) radius 2
  line L8 (16.5342, -6.2) -> (10.5342, -6.2)
  line L9 (10.5342, -6.2) -> (10.5342, 0)
  line L10 (10.5342, 0) -> (16.5342, 0)
  line L11 (16.5342, 0) -> (16.5342, -6.2)
  line L12 (8.5342, -20.5) -> (-7.4658, -20.5) projected
  line L13 (8.5342, -20.5) -> (10.5342, -18.7057)
  point P0 (0, 0)
  point P1 (9.5342, -20.5)
  point P2 (10.5342, -20.7679)
  point P3 (10.5342, -20.5)
  point P4 (16.5342, -22.2639)
  point P5 (11.5342, -22.5)
  dimension "d48" = 6
  dimension "d44" = 2
  dimension "d46" = 4
  dimension "d47" = 6
  dimension "d49" = 4
  dimension "d50" = 2
  dimension "d51" = 6.2
  dimension "d64" = 24.5
extrude "Extrusion2" add sketch "Sketch2" against normal blind 3 contours L2 L3 A1 L7 L6 L5 L1 | L9 L10 L11 L2 | L5 L6 L13 | A1 L3 | L3 A1 | L6 L7 A2 L5 | L5 A2 L6
mirror "Mirror2" about plane through (10.5342, 0, 0) normal (0, 0, 1) of "Extrusion2"
sketch "Sketch3" plane through (0, 0, 0) normal (0, -1, 0) x (1, 0, 0)
  line L0 (13.5342, 15.5) -> (16.5342, 15.5)
  line L1 (16.5342, 15.5) -> (16.5342, -15.5)
  line L2 (16.5342, -15.5) -> (13.5342, -15.5)
  line L3 (13.5342, -15.5) -> (13.5342, 15.5)
  line L4 (16.5342, -22.2639) -> (16.5342, 22.2639) projected
  point P0 (0, 0)
  dimension "d54" = 31
  dimension "d55" = 0
  dimension "d56" = 15.5
  dimension "d57" = 3
extrude "Extrusion3" cut sketch "Sketch3" against normal blind 3
sketch "Sketch5" plane through (0, 0, 0) normal (0, -1, 0) x (1, 0, 0)
  line L0 (10.5342, 6.5) -> (-20.8216, 6.5)
  line L1 (-20.8216, 6.5) -> (-20.8216, -6.5)
  line L2 (-20.8216, -6.5) -> (10.5342, -6.5)
  line L3 (10.5342, -6.5) -> (10.5342, 6.5)
  point P0 (0, 0)
  dimension "d60" = 13
  dimension "d61" = 6.5
extrude "Extrusion4" cut sketch "Sketch5" against normal blind 3
sketch "Sketch6" plane through (0, 3, 0) normal (0, 1, 0) x (1, 0, 0)
  line L0 (9.5342, 20.5) -> (-7.4658, 20.5) projected
  line L1 (-6.6608, 6.5) -> (10.5342, 6.5) projected
  line L2 (7.0342, 20.5) -> (9.0342, 20.5)
  line L3 (9.0342, 20.5) -> (9.0342, 6.5)
  line L4 (9.0342, 6.5) -> (7.0342, 6.5)
  line L5 (7.0342, 6.5) -> (7.0342, 20.5)
  line L6 (10.5342, 6.5) -> (10.5342, -6.5) projected
  line L7 (7.0342, 14.846) -> (7.0342, 11.846) projected
  point P0 (0, 0)
  dimension "d65" = 1.5
  dimension "d66" = 0
extrude "Extrusion5" add sketch "Sketch6" along normal blind 3
mirror "Mirror3" about plane through (0, 0, 0) normal (0, 0, 1) of "Extrusion5"
properties part number "Base_modded"
